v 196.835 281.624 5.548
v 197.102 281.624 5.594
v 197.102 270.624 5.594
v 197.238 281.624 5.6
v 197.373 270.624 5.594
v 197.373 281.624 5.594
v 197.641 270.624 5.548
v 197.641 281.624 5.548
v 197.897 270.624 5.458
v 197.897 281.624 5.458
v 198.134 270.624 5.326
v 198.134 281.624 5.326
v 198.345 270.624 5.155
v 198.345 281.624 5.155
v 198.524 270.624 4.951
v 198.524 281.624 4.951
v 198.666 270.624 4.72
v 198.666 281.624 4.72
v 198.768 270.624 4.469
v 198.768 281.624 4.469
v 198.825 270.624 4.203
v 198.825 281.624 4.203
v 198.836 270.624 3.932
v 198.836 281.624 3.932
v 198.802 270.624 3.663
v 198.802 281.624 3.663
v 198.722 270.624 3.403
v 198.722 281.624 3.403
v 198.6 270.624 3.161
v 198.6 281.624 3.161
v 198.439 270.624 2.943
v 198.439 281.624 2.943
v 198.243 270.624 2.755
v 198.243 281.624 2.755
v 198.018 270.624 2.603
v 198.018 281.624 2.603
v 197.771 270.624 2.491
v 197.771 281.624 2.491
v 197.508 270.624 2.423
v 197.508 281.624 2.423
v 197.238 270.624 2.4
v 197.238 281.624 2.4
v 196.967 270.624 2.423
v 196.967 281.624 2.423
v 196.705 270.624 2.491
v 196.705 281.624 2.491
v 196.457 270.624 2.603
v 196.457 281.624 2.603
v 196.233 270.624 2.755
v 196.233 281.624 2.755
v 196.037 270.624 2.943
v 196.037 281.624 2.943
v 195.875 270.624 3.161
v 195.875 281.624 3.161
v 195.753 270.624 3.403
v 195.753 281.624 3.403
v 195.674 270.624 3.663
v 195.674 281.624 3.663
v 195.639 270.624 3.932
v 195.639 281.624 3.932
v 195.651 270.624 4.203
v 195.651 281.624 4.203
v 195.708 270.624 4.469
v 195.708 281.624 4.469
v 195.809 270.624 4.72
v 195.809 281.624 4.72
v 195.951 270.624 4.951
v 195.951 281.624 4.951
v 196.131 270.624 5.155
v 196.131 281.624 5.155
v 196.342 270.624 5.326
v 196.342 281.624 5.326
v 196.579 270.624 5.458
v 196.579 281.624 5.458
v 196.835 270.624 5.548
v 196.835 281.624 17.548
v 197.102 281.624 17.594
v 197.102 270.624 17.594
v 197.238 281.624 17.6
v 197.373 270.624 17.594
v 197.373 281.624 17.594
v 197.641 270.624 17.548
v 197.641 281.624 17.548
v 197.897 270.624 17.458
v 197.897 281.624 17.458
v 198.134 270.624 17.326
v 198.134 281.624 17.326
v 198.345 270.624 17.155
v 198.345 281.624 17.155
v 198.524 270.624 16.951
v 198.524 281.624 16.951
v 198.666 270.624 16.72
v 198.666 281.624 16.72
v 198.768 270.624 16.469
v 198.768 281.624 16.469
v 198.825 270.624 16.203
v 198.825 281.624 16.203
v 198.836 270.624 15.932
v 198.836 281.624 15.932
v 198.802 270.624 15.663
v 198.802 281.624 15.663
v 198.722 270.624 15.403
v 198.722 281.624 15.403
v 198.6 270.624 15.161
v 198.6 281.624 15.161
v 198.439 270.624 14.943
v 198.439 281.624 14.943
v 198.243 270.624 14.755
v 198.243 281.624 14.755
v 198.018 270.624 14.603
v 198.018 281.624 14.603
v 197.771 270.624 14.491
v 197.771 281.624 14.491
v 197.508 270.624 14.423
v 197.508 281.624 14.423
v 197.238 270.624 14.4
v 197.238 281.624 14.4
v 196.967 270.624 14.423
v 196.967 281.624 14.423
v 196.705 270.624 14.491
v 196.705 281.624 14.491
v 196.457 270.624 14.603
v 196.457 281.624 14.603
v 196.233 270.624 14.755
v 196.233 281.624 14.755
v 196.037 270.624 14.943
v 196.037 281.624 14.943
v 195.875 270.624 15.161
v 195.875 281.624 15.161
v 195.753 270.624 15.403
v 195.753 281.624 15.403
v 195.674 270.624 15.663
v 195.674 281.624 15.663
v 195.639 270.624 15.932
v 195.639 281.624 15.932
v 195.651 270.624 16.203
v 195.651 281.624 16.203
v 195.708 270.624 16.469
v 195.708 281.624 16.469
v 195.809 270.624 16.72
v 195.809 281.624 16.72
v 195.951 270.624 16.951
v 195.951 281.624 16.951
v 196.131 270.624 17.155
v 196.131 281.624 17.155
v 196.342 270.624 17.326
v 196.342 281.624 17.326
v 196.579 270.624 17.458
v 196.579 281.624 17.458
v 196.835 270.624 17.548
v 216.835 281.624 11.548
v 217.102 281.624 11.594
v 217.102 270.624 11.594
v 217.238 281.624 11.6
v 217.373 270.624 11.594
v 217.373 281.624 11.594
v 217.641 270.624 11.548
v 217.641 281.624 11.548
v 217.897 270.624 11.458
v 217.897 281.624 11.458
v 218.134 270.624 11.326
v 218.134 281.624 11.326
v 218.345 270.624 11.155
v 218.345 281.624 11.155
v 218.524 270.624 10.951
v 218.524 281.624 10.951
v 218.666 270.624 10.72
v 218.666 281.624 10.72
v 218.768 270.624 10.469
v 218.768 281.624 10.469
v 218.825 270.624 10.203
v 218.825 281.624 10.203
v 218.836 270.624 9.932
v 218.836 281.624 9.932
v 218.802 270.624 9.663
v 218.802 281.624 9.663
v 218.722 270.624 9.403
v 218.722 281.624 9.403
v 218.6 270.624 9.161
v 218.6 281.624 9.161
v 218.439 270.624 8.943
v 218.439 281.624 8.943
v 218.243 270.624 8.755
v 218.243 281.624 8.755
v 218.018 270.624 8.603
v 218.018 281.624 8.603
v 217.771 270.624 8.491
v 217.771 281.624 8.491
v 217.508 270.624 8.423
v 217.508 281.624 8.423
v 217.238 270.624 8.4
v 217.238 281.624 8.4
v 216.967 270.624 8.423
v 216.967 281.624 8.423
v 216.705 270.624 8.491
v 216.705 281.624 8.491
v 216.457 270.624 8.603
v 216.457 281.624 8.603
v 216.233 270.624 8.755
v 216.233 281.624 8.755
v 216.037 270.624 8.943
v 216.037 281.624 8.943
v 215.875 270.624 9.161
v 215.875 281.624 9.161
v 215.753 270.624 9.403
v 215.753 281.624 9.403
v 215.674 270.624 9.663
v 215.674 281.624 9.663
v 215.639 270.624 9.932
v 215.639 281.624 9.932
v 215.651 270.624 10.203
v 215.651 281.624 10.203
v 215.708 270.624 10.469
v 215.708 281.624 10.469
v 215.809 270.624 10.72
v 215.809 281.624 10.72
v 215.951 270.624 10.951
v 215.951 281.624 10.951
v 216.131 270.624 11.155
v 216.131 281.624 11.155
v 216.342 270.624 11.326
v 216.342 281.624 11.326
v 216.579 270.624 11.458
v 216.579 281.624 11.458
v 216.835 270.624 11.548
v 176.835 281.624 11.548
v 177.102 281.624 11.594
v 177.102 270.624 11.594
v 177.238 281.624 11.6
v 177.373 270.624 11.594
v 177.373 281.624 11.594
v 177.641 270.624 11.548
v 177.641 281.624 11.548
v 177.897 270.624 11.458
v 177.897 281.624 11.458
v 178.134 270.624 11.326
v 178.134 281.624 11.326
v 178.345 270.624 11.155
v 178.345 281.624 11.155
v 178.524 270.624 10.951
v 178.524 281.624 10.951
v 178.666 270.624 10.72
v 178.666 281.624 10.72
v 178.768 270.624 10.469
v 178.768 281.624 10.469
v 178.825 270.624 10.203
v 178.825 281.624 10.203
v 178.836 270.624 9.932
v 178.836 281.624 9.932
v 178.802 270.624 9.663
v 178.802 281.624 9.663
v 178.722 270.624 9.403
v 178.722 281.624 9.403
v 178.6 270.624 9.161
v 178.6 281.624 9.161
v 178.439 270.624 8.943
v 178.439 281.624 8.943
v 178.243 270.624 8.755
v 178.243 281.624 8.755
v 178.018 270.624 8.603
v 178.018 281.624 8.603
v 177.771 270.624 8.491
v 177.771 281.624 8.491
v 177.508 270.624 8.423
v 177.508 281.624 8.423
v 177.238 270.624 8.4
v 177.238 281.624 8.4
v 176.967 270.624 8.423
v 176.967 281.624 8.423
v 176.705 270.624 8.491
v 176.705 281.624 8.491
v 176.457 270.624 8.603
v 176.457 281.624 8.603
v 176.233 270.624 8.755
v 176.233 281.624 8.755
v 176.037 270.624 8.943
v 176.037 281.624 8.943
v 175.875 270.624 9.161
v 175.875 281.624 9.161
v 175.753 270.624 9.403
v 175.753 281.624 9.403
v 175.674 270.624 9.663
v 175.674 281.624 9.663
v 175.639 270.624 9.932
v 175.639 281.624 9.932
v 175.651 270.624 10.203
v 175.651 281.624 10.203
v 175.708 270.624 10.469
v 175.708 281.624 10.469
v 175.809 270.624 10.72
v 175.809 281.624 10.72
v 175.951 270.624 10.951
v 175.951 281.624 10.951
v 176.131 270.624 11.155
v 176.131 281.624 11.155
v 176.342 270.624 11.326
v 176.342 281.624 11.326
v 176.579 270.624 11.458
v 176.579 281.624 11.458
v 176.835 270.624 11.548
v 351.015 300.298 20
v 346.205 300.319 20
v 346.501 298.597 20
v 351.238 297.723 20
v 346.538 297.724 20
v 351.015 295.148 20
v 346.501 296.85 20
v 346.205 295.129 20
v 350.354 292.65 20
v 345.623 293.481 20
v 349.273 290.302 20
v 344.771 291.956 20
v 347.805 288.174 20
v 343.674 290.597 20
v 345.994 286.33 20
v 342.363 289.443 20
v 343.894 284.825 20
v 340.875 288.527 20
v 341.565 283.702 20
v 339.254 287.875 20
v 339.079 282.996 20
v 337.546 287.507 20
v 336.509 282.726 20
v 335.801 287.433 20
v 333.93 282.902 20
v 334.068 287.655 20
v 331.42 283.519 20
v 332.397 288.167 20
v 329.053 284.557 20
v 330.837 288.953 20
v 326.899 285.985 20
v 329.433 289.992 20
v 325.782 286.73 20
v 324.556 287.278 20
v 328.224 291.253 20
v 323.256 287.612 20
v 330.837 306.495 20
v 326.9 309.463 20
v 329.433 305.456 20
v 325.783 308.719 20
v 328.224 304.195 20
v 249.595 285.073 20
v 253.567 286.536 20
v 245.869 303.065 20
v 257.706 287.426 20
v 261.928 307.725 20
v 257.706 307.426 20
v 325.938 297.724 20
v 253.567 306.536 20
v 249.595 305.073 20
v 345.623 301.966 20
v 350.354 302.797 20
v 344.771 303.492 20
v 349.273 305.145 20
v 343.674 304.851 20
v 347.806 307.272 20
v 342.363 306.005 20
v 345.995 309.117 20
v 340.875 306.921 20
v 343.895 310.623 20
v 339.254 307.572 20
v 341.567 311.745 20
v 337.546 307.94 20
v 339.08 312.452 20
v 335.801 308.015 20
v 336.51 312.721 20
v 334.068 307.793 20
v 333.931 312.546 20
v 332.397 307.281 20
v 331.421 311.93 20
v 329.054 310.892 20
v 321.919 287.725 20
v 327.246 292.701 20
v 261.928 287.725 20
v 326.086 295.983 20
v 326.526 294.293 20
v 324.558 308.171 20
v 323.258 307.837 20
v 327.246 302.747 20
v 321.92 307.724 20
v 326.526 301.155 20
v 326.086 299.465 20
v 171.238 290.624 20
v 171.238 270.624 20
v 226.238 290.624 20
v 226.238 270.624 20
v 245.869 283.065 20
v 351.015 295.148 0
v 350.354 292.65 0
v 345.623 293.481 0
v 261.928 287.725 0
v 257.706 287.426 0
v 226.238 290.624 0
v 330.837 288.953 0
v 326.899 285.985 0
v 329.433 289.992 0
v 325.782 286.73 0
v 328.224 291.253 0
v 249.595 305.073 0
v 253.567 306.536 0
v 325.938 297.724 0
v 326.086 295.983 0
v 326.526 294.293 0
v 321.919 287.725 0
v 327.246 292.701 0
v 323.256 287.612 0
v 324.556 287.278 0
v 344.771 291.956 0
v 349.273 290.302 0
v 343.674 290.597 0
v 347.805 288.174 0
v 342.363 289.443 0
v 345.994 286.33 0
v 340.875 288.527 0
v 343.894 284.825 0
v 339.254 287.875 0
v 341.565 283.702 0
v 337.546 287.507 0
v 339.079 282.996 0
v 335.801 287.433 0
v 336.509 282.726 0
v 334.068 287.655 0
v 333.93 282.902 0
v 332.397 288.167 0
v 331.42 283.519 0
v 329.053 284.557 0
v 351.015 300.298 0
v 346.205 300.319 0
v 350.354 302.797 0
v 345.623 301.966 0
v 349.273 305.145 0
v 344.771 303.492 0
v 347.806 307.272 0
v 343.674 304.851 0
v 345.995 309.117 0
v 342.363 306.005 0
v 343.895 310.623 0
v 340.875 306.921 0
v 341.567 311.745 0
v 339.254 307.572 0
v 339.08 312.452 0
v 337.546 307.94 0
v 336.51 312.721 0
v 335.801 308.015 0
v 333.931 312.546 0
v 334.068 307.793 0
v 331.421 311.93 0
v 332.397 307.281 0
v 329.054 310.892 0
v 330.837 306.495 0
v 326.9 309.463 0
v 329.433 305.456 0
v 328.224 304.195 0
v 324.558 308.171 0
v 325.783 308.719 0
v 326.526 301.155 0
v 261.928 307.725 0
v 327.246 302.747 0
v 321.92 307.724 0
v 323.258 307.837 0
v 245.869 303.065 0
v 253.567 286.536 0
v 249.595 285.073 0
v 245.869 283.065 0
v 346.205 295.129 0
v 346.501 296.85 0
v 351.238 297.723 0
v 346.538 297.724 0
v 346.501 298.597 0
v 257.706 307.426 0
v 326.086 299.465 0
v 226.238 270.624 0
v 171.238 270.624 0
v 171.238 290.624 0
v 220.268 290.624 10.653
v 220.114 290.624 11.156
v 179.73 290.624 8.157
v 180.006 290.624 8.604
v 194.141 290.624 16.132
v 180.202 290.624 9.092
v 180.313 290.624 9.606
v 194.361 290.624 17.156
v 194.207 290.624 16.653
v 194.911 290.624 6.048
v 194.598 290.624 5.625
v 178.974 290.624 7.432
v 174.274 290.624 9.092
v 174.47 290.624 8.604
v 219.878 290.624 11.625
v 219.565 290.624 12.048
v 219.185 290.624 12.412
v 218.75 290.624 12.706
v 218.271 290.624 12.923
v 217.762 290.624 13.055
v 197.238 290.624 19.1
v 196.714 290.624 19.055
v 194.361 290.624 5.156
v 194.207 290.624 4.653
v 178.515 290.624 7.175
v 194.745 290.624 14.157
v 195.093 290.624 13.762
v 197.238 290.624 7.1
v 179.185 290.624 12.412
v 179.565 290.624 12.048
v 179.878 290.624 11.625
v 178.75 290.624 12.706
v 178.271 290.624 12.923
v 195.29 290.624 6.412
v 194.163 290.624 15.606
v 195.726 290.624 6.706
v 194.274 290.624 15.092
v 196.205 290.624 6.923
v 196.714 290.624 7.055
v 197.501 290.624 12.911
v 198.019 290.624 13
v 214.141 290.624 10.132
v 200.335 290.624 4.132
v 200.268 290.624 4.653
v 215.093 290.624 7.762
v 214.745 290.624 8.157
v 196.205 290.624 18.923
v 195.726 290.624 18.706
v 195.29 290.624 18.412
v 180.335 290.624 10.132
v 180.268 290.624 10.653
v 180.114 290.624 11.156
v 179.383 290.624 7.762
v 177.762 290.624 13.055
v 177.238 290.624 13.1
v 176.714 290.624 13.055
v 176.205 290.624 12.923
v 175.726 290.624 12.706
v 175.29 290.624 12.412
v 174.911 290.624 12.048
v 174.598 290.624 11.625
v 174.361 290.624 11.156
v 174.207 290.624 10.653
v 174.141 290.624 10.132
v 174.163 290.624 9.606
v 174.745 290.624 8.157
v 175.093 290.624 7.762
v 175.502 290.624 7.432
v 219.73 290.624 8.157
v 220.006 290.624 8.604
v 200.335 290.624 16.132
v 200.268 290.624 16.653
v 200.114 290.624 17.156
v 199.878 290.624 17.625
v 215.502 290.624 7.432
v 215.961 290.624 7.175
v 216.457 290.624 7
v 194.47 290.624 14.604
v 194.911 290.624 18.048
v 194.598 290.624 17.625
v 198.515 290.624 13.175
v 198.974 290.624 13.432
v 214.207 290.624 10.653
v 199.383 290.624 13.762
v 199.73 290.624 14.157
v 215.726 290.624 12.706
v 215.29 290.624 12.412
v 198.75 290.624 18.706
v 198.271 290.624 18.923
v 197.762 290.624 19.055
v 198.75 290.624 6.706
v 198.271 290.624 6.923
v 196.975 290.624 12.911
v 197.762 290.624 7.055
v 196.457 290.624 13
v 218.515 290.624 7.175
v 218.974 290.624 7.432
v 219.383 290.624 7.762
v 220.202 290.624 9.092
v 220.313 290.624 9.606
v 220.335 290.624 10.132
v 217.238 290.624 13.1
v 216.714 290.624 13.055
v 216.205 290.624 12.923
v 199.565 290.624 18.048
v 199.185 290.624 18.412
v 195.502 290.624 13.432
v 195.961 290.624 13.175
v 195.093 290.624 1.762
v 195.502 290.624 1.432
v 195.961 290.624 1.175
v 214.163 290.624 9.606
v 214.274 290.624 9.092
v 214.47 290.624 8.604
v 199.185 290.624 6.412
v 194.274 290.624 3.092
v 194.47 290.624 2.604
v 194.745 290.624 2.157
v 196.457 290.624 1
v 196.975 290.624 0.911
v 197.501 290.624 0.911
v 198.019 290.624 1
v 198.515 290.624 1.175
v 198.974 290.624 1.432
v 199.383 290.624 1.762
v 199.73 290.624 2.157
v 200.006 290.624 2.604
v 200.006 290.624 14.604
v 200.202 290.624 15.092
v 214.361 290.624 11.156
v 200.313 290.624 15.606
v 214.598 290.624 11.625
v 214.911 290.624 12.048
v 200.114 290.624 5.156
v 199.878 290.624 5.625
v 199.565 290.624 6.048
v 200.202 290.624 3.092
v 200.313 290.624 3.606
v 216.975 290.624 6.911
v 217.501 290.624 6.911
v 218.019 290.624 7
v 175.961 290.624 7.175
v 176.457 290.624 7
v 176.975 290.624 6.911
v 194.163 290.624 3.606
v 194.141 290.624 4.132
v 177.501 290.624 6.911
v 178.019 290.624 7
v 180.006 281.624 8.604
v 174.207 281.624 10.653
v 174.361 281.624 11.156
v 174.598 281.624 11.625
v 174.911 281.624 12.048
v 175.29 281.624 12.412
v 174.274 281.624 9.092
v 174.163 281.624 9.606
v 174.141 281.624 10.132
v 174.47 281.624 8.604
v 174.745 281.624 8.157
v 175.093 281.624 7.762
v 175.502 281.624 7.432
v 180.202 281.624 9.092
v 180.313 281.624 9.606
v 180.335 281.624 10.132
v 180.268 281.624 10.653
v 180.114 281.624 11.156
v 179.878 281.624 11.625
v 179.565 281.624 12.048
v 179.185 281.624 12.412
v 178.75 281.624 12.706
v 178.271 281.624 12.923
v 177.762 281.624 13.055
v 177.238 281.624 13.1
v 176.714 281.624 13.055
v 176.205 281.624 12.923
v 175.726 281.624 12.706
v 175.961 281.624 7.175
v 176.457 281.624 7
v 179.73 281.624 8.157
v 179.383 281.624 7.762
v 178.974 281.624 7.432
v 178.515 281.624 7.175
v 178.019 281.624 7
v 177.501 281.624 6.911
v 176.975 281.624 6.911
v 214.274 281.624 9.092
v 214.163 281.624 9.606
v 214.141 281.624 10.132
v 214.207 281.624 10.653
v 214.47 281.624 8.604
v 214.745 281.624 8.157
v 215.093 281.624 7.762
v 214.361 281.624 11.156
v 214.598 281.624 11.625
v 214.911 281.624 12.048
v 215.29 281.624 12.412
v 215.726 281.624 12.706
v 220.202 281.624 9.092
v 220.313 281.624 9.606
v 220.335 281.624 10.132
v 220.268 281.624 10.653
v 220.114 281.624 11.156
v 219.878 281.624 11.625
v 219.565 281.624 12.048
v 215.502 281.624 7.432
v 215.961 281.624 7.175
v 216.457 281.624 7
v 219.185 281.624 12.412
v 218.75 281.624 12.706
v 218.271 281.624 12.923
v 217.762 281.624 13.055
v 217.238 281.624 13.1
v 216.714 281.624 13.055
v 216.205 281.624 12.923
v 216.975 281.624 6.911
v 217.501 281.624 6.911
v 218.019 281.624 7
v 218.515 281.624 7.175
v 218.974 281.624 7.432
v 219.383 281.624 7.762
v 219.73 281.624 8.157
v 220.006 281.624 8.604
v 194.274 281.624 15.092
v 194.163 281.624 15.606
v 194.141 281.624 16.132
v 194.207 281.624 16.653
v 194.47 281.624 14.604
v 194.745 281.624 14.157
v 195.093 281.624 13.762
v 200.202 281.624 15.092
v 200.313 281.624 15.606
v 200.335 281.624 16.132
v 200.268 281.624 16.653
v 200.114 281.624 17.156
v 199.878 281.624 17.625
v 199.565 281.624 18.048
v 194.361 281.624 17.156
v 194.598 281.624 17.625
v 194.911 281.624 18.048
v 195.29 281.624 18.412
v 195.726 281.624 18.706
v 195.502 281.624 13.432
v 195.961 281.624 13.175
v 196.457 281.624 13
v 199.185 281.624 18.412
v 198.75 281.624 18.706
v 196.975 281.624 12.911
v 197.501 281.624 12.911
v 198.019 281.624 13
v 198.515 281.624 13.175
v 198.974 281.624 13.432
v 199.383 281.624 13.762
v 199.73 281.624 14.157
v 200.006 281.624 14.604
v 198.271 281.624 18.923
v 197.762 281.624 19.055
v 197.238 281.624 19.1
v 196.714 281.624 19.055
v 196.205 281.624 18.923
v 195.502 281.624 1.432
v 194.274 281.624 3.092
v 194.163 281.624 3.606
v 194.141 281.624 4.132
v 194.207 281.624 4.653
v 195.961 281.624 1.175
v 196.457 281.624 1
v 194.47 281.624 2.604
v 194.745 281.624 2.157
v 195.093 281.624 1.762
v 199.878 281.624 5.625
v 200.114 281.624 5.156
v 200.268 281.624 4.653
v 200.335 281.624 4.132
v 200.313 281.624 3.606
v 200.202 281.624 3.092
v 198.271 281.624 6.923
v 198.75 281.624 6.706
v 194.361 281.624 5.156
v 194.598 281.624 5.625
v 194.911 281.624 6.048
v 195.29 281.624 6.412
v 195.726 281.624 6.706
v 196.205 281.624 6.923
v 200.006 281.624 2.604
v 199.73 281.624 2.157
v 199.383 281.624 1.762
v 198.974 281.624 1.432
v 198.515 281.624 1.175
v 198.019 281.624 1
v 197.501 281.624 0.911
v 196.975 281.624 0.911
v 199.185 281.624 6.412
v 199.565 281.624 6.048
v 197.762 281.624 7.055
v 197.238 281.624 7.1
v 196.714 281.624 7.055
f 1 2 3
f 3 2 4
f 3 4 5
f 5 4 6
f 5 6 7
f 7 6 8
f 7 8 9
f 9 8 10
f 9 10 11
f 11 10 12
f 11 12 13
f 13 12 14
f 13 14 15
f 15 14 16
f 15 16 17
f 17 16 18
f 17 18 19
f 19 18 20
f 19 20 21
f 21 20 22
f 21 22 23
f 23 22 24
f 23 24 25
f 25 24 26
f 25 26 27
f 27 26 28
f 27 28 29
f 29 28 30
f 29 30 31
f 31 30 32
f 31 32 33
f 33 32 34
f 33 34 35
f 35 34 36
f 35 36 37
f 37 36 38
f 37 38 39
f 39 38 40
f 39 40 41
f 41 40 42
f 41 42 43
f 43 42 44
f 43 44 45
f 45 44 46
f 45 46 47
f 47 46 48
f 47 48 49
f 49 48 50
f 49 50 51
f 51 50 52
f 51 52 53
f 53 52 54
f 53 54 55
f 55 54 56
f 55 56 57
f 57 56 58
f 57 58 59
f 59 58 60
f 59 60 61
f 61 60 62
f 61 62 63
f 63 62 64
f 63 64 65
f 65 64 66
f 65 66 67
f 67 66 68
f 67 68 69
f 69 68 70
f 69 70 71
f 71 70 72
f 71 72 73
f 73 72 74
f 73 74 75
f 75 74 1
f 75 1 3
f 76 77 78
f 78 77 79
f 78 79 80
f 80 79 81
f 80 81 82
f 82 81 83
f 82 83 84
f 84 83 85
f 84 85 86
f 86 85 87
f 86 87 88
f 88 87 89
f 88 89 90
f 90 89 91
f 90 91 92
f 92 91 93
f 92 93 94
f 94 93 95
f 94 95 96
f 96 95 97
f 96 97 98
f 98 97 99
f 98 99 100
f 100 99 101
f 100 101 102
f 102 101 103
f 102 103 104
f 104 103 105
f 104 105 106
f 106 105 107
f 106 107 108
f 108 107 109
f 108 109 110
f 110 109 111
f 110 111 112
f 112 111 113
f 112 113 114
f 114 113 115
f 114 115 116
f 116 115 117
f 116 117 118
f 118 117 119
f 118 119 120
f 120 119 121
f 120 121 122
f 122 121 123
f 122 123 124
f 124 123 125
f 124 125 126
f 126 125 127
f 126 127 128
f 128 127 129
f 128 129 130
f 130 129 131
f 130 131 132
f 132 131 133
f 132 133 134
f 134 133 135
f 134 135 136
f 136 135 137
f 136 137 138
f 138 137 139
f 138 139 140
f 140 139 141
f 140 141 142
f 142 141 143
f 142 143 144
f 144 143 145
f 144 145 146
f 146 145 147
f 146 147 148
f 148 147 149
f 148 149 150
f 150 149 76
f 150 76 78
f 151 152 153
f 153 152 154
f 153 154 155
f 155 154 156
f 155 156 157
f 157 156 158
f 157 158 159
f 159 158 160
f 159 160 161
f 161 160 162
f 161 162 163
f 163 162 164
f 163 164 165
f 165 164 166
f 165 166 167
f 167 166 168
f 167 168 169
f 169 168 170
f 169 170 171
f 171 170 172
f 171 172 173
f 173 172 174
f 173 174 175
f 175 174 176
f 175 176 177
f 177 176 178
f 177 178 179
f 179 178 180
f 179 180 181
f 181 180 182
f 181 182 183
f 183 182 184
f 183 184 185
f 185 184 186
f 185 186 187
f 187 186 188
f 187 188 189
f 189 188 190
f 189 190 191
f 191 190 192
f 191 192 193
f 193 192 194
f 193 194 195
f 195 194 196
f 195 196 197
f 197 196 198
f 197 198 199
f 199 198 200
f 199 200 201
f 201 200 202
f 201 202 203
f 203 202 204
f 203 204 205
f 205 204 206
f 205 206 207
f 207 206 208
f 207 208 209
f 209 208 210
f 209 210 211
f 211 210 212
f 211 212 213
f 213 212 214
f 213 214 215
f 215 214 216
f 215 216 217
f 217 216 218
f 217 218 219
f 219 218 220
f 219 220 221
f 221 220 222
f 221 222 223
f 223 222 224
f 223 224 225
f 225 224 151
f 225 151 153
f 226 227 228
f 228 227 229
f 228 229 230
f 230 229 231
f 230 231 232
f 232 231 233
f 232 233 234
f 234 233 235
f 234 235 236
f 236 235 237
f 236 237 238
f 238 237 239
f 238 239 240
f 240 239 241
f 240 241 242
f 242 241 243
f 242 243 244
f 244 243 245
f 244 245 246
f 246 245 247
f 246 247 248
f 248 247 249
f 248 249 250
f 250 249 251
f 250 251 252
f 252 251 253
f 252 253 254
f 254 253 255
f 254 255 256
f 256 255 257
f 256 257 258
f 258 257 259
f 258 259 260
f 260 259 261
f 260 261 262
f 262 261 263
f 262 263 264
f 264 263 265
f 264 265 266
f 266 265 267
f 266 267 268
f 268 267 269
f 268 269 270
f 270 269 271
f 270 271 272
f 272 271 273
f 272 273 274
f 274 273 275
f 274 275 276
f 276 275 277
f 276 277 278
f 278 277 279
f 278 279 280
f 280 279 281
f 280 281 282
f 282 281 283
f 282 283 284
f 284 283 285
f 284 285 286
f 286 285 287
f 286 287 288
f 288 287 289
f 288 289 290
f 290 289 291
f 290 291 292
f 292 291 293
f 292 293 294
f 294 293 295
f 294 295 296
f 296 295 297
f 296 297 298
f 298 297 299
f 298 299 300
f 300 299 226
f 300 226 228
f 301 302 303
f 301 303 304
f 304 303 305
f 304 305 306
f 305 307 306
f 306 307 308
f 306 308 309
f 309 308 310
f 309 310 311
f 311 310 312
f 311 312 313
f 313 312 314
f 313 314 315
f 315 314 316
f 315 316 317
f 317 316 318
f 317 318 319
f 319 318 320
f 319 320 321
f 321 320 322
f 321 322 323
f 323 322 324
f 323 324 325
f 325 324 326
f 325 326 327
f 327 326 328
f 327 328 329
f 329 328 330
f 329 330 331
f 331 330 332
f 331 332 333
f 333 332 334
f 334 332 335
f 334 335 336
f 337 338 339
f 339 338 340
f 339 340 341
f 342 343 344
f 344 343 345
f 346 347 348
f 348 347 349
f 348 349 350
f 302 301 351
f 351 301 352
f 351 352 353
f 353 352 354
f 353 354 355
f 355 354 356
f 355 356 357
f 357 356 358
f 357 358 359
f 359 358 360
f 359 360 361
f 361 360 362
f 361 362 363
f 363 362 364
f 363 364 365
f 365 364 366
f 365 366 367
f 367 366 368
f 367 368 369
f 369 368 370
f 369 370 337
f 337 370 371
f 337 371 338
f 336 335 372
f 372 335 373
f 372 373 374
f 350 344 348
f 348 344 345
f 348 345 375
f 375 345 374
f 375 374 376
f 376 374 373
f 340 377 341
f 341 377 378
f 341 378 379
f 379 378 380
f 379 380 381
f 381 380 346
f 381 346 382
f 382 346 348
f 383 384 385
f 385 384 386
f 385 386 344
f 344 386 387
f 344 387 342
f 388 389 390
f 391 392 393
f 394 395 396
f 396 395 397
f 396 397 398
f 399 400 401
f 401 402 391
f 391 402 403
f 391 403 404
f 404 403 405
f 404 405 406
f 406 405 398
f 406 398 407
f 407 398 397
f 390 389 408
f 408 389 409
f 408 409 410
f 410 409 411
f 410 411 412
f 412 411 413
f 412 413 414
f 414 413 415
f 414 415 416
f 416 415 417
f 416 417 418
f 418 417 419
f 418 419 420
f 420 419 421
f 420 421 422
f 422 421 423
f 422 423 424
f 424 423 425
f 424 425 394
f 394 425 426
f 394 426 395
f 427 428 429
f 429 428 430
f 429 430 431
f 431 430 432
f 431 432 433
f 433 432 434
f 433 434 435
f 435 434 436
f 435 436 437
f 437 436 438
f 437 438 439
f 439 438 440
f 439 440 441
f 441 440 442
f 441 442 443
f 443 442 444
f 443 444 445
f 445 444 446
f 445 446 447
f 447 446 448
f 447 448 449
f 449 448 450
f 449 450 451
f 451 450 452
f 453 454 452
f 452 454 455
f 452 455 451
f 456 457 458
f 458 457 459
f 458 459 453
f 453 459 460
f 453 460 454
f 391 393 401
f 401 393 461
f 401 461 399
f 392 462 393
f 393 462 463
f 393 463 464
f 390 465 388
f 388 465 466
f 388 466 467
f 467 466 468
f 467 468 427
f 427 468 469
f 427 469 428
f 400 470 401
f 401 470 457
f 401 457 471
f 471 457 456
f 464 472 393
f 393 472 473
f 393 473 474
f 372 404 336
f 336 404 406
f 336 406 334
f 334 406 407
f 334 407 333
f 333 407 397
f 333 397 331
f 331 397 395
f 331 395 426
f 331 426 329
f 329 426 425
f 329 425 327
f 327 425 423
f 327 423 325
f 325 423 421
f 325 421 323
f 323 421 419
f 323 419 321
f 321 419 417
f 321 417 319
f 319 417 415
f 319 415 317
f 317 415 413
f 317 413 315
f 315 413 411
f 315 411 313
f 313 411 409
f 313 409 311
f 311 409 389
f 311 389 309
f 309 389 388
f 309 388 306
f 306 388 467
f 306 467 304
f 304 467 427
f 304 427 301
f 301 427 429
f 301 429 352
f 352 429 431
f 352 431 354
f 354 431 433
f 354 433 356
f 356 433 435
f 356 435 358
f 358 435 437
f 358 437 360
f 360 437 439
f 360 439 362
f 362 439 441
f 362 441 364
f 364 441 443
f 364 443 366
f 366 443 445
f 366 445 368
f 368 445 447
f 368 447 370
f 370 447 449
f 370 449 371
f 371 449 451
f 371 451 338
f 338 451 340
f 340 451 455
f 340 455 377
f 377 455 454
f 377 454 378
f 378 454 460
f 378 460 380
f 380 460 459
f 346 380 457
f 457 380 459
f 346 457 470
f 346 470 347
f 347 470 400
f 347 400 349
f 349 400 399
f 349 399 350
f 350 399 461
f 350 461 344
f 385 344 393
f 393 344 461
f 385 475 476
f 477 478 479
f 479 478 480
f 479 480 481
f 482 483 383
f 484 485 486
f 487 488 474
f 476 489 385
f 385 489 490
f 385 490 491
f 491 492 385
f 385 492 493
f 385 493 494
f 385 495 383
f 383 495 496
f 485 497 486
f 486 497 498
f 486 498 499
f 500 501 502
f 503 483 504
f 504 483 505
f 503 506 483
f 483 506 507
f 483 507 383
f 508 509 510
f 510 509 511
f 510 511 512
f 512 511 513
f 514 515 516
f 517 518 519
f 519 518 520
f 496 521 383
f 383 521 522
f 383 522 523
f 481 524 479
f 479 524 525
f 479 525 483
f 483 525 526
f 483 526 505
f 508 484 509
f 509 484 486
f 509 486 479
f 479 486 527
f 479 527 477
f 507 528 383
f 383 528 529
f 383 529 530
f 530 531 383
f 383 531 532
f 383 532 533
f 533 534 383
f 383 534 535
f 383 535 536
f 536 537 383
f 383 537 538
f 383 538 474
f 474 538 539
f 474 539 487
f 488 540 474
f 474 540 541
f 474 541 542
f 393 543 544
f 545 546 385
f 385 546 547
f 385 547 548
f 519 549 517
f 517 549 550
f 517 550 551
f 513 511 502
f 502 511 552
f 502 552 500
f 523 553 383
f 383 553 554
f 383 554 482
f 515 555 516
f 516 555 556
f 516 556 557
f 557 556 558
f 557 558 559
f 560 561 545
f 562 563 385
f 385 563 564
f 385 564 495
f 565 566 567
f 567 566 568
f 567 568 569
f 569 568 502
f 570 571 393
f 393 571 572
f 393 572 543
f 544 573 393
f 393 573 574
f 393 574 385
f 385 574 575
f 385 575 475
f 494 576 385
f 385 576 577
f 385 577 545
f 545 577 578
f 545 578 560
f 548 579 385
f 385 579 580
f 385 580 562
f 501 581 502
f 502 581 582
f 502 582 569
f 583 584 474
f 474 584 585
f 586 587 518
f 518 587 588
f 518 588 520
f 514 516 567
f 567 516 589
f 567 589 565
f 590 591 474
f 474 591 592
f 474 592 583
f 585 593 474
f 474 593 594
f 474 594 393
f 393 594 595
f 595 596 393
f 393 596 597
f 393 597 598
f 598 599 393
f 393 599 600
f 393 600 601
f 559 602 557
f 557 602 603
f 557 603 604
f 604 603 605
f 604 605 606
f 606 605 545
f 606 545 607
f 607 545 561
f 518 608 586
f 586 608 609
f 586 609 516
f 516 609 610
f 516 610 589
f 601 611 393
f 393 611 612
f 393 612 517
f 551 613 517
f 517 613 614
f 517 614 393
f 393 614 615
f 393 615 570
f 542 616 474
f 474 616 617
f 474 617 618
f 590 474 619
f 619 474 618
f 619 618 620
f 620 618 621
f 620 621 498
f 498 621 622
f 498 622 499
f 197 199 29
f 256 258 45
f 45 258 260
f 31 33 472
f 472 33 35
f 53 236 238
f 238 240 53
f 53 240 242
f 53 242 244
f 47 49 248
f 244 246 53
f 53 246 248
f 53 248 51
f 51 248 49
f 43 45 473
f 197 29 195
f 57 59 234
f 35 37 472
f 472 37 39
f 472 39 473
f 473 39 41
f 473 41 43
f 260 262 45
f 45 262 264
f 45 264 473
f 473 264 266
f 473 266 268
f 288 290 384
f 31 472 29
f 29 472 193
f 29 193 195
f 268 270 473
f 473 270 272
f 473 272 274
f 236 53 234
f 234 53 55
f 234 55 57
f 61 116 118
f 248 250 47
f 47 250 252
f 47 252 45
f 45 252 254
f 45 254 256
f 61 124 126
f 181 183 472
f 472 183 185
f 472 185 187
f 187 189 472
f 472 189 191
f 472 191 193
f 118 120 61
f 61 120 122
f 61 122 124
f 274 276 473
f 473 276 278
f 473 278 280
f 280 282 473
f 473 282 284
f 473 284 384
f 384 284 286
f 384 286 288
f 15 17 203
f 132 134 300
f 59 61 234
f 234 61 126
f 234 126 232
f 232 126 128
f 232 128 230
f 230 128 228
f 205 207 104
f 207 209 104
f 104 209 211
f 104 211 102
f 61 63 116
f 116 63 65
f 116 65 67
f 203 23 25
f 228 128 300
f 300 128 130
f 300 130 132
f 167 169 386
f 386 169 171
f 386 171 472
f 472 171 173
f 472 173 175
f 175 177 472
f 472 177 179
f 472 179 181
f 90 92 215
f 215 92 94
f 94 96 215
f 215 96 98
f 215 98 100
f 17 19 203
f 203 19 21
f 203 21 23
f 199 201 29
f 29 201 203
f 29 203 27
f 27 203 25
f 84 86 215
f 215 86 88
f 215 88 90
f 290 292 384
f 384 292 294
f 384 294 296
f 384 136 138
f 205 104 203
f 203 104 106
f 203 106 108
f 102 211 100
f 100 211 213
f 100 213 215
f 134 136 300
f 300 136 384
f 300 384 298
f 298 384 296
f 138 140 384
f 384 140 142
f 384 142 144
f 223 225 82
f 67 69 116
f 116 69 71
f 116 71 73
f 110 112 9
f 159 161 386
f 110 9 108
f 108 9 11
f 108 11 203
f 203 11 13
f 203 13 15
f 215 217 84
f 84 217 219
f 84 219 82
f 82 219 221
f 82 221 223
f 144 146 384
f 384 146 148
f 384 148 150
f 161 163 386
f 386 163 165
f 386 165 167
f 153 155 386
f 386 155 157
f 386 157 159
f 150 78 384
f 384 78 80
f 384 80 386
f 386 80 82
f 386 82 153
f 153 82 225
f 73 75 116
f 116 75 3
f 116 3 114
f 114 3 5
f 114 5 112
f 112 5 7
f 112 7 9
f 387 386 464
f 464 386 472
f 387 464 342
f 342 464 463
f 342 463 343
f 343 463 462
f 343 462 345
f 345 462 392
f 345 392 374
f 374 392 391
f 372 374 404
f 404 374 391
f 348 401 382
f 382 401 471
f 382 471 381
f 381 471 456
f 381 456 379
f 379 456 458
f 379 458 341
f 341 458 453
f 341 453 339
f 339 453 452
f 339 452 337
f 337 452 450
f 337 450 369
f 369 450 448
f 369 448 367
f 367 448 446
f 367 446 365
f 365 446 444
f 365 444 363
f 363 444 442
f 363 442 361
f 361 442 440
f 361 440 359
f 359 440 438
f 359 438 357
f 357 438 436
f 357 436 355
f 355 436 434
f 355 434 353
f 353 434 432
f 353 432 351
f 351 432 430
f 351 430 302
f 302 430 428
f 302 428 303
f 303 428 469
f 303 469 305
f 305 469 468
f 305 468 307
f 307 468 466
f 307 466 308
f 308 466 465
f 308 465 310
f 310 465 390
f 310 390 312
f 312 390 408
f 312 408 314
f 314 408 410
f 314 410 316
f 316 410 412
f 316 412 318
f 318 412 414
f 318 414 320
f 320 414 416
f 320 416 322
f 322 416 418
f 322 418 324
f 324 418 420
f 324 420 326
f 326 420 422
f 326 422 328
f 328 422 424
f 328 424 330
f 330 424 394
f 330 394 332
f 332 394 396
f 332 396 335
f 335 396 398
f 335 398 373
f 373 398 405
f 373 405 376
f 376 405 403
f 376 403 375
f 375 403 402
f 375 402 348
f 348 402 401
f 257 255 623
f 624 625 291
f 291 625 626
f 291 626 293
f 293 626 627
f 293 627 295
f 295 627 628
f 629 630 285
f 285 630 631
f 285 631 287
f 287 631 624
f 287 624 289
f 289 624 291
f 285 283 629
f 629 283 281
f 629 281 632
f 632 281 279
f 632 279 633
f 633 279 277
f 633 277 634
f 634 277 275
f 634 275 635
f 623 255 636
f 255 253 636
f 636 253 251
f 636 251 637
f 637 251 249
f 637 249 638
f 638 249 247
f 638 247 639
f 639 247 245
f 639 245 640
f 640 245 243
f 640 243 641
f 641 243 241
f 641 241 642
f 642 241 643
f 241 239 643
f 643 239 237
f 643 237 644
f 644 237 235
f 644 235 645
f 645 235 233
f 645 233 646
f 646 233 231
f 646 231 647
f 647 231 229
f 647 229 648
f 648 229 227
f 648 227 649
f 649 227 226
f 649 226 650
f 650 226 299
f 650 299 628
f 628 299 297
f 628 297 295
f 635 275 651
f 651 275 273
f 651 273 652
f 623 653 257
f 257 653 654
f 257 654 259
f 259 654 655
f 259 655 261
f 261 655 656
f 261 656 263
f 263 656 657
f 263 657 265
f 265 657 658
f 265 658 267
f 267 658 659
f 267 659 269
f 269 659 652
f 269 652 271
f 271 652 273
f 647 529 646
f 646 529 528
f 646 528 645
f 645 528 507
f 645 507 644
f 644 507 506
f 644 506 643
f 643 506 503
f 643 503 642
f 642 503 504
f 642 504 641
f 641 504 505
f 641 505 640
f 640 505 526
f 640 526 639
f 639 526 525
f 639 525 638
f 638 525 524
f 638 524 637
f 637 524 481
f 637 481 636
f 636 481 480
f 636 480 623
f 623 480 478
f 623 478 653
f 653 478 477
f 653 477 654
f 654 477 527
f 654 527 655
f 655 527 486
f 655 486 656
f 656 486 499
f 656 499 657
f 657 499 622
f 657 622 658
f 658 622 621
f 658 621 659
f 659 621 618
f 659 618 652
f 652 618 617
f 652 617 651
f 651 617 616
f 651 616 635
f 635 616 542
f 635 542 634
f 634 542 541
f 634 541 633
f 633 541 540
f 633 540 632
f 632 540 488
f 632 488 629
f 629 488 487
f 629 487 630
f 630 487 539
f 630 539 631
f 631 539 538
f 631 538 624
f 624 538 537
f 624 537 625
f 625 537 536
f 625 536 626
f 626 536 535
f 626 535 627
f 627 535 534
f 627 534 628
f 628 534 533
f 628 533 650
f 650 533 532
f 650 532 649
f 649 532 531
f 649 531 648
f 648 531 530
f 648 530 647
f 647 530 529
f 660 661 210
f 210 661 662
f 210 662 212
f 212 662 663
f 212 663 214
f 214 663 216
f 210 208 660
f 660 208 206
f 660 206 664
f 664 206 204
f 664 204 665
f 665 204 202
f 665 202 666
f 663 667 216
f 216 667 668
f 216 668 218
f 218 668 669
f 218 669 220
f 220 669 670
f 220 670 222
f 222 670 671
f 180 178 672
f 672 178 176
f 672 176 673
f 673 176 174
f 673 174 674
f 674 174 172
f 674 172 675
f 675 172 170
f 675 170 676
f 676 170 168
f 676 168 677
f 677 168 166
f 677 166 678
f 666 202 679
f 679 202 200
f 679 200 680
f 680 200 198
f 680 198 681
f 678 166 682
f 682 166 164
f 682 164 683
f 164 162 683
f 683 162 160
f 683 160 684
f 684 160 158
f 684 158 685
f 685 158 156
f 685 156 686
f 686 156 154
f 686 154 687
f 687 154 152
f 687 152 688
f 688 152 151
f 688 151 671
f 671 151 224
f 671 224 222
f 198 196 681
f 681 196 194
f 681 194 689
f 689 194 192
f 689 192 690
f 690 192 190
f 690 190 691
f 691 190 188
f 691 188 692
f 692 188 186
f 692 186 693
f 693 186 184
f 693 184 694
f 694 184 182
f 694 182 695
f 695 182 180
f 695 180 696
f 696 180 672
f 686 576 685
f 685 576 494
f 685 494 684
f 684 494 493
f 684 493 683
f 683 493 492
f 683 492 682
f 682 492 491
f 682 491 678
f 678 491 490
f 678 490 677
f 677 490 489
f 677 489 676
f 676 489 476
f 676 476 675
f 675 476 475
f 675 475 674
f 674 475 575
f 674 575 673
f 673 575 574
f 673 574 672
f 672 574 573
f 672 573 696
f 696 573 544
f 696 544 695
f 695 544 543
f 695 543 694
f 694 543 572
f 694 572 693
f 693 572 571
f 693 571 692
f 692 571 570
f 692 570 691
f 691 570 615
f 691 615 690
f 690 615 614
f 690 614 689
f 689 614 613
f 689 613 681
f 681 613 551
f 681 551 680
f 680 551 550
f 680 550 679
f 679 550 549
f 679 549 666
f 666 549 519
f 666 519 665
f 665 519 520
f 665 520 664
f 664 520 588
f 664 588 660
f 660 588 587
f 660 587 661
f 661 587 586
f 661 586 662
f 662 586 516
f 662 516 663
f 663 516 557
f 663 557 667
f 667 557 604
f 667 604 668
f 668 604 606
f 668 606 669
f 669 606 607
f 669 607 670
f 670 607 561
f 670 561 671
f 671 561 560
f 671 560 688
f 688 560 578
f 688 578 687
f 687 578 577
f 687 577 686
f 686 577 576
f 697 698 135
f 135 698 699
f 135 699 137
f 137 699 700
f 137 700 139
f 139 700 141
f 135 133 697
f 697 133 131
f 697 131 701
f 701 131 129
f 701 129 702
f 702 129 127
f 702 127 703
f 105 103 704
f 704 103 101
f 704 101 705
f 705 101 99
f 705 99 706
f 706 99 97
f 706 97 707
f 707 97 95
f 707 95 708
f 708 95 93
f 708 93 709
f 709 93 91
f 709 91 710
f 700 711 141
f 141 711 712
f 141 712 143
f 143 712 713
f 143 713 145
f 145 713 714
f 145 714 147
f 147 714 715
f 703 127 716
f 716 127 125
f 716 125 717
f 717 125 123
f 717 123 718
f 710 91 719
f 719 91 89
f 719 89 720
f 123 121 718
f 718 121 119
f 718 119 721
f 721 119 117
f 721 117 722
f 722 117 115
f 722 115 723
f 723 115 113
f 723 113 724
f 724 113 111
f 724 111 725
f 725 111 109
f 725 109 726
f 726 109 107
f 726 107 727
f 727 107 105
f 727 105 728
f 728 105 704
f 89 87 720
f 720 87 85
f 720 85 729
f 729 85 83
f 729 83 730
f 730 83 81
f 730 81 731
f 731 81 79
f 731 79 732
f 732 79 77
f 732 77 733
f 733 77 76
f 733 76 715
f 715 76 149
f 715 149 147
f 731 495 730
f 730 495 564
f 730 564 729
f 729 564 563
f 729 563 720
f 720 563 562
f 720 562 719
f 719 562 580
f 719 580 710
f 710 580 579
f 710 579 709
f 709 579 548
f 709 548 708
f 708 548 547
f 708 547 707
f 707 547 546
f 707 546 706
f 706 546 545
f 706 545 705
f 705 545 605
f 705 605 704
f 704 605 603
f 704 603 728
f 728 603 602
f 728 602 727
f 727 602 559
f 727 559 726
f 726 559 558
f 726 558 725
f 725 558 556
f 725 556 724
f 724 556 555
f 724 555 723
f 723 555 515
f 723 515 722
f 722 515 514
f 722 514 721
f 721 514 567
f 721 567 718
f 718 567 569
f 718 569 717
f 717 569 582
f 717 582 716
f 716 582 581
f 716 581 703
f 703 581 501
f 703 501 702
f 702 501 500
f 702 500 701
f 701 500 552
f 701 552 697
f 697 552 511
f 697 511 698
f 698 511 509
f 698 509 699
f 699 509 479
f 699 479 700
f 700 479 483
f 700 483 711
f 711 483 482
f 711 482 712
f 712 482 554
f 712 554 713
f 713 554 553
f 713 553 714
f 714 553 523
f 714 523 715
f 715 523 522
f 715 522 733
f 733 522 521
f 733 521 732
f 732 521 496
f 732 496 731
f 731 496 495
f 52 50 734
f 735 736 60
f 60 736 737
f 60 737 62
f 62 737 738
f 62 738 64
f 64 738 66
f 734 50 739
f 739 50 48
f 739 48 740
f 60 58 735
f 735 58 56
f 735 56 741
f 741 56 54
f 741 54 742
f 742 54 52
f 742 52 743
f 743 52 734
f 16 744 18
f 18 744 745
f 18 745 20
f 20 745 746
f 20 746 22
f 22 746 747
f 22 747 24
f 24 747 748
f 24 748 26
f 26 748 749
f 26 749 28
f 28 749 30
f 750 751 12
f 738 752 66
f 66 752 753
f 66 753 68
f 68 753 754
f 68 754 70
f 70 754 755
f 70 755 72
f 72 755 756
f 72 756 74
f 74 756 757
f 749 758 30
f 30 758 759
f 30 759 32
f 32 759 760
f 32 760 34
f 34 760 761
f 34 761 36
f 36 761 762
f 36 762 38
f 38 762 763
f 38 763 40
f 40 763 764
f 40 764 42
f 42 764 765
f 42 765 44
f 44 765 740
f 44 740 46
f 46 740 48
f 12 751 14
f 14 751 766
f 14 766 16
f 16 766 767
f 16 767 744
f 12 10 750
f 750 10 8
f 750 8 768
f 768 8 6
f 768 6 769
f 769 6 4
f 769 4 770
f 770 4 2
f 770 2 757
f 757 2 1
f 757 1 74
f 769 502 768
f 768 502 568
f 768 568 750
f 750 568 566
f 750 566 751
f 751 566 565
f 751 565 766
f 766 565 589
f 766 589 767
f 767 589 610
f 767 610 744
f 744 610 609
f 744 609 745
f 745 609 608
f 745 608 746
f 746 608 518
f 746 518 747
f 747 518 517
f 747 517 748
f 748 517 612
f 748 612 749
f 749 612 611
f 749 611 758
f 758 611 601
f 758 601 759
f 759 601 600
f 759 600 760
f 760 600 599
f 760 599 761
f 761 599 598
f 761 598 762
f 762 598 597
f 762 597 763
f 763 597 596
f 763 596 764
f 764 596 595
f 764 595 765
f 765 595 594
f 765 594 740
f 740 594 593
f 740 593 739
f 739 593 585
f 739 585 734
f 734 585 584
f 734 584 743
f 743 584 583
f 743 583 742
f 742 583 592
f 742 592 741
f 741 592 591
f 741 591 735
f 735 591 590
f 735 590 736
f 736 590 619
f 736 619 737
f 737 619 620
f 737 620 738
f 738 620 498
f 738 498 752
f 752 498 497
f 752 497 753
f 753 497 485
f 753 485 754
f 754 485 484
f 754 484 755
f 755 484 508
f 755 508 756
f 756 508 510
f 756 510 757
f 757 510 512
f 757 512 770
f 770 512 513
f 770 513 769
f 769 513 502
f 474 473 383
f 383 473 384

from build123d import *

# Parameters (mm, degrees)
MODEL_R             = 10.3
EXTRUDE_1_DEPTH     = 20
SKETCH_2_R          = 1.6
CUT_EXTRUDE_1_DEPTH = 22
SKETCH_4_R          = 3.1
CUT_EXTRUDE_2_DEPTH = 9
SKETCH_5_W          = 3
SKETCH_5_H          = 20
CUT_EXTRUDE_3_DEPTH = 22


with BuildPart() as part:
    # Model → 凸台-拉伸1 (new body)
    with BuildSketch(Plane.XY):
        with BuildLine():
            Line((233.591051214, 295.2839002), (226.237796851, 290.623912247))
            Line((226.237796851, 290.623912247), (217.532290693, 290.623912247))
            Line((217.532290693, 290.623912247), (168.237796851, 290.623912247))
            Line((168.237796851, 290.623912247), (168.237796851, 270.623912247))
            Line((168.237796851, 270.623912247), (226.237796851, 270.623912247))
            Line((226.237796851, 270.623912247), (245.869173527, 283.06493146))
            ThreePointArc((245.869173527, 283.06493146), (253.567322868, 286.536378604), (261.927934048, 287.724919413))
            Line((261.927934048, 287.724919413), (321.918709695, 287.724919413))
            ThreePointArc((321.918709695, 287.724919413), (324.556497218, 287.277539951), (326.899261749, 285.985438659))
            ThreePointArc((326.899261749, 285.985438659), (351.237796839, 297.723317855), (326.900192078, 309.463125896))
            ThreePointArc((326.900192078, 309.463125896), (324.557590785, 308.171303033), (321.920064905, 307.724039843))
            Line((321.920064905, 307.724039843), (261.928239839, 307.724854901))
            ThreePointArc((261.928239839, 307.724854901), (253.567416793, 306.536370888), (245.869071734, 303.06486695))
            Line((245.869071734, 303.06486695), (233.591051214, 295.2839002))
        make_face()
        with Locations((336.237796851, 297.723912247)):
            Circle(MODEL_R, mode=Mode.SUBTRACT)
    extrude(amount=EXTRUDE_1_DEPTH)

    # 草图2 → 切除-拉伸1 (cut)
    with BuildSketch(Plane(origin=(0, 270.623912247, 0), x_dir=(-1, 0, 0), z_dir=(0, -1, 0))):
        with Locations(Location((-177.237796851, -10, 0), (0, 0, 90))):
            Circle(SKETCH_2_R)
        with Locations(Location((-217.237796851, -10, 0), (0, 0, 90))):
            Circle(SKETCH_2_R)
        with Locations(Location((-197.237796851, -16, 0), (0, 0, 90))):
            Circle(SKETCH_2_R)
        with Locations(Location((-197.237796851, -4, 0), (0, 0, 90))):
            Circle(SKETCH_2_R)
    extrude(amount=-CUT_EXTRUDE_1_DEPTH, mode=Mode.SUBTRACT)

    # 草图4 → 切除-拉伸2 (cut)
    with BuildSketch(Plane(origin=(0, 290.623912247, 0), x_dir=(1, 0, 0), z_dir=(0, 1, 0))):
        with Locations(Location((177.237796851, -10, 0), (0, 0, 270))):
            Circle(SKETCH_4_R)
        with Locations(Location((197.237796851, -16, 0), (0, 0, 270))):
            Circle(SKETCH_4_R)
        with Locations(Location((197.237796851, -4, 0), (0, 0, 270))):
            Circle(SKETCH_4_R)
        with Locations(Location((217.237796851, -10, 0), (0, 0, 270))):
            Circle(SKETCH_4_R)
    extrude(amount=-CUT_EXTRUDE_2_DEPTH, mode=Mode.SUBTRACT)

    # 草图5 → 切除-拉伸3 (cut)
    with BuildSketch(Plane(origin=(0, 290.623912247, 0), x_dir=(1, 0, 0), z_dir=(0, 1, 0))):
        with Locations((169.737796851, -10)):
            Rectangle(SKETCH_5_W, SKETCH_5_H)
    extrude(amount=-CUT_EXTRUDE_3_DEPTH, mode=Mode.SUBTRACT)


solid = part.part
